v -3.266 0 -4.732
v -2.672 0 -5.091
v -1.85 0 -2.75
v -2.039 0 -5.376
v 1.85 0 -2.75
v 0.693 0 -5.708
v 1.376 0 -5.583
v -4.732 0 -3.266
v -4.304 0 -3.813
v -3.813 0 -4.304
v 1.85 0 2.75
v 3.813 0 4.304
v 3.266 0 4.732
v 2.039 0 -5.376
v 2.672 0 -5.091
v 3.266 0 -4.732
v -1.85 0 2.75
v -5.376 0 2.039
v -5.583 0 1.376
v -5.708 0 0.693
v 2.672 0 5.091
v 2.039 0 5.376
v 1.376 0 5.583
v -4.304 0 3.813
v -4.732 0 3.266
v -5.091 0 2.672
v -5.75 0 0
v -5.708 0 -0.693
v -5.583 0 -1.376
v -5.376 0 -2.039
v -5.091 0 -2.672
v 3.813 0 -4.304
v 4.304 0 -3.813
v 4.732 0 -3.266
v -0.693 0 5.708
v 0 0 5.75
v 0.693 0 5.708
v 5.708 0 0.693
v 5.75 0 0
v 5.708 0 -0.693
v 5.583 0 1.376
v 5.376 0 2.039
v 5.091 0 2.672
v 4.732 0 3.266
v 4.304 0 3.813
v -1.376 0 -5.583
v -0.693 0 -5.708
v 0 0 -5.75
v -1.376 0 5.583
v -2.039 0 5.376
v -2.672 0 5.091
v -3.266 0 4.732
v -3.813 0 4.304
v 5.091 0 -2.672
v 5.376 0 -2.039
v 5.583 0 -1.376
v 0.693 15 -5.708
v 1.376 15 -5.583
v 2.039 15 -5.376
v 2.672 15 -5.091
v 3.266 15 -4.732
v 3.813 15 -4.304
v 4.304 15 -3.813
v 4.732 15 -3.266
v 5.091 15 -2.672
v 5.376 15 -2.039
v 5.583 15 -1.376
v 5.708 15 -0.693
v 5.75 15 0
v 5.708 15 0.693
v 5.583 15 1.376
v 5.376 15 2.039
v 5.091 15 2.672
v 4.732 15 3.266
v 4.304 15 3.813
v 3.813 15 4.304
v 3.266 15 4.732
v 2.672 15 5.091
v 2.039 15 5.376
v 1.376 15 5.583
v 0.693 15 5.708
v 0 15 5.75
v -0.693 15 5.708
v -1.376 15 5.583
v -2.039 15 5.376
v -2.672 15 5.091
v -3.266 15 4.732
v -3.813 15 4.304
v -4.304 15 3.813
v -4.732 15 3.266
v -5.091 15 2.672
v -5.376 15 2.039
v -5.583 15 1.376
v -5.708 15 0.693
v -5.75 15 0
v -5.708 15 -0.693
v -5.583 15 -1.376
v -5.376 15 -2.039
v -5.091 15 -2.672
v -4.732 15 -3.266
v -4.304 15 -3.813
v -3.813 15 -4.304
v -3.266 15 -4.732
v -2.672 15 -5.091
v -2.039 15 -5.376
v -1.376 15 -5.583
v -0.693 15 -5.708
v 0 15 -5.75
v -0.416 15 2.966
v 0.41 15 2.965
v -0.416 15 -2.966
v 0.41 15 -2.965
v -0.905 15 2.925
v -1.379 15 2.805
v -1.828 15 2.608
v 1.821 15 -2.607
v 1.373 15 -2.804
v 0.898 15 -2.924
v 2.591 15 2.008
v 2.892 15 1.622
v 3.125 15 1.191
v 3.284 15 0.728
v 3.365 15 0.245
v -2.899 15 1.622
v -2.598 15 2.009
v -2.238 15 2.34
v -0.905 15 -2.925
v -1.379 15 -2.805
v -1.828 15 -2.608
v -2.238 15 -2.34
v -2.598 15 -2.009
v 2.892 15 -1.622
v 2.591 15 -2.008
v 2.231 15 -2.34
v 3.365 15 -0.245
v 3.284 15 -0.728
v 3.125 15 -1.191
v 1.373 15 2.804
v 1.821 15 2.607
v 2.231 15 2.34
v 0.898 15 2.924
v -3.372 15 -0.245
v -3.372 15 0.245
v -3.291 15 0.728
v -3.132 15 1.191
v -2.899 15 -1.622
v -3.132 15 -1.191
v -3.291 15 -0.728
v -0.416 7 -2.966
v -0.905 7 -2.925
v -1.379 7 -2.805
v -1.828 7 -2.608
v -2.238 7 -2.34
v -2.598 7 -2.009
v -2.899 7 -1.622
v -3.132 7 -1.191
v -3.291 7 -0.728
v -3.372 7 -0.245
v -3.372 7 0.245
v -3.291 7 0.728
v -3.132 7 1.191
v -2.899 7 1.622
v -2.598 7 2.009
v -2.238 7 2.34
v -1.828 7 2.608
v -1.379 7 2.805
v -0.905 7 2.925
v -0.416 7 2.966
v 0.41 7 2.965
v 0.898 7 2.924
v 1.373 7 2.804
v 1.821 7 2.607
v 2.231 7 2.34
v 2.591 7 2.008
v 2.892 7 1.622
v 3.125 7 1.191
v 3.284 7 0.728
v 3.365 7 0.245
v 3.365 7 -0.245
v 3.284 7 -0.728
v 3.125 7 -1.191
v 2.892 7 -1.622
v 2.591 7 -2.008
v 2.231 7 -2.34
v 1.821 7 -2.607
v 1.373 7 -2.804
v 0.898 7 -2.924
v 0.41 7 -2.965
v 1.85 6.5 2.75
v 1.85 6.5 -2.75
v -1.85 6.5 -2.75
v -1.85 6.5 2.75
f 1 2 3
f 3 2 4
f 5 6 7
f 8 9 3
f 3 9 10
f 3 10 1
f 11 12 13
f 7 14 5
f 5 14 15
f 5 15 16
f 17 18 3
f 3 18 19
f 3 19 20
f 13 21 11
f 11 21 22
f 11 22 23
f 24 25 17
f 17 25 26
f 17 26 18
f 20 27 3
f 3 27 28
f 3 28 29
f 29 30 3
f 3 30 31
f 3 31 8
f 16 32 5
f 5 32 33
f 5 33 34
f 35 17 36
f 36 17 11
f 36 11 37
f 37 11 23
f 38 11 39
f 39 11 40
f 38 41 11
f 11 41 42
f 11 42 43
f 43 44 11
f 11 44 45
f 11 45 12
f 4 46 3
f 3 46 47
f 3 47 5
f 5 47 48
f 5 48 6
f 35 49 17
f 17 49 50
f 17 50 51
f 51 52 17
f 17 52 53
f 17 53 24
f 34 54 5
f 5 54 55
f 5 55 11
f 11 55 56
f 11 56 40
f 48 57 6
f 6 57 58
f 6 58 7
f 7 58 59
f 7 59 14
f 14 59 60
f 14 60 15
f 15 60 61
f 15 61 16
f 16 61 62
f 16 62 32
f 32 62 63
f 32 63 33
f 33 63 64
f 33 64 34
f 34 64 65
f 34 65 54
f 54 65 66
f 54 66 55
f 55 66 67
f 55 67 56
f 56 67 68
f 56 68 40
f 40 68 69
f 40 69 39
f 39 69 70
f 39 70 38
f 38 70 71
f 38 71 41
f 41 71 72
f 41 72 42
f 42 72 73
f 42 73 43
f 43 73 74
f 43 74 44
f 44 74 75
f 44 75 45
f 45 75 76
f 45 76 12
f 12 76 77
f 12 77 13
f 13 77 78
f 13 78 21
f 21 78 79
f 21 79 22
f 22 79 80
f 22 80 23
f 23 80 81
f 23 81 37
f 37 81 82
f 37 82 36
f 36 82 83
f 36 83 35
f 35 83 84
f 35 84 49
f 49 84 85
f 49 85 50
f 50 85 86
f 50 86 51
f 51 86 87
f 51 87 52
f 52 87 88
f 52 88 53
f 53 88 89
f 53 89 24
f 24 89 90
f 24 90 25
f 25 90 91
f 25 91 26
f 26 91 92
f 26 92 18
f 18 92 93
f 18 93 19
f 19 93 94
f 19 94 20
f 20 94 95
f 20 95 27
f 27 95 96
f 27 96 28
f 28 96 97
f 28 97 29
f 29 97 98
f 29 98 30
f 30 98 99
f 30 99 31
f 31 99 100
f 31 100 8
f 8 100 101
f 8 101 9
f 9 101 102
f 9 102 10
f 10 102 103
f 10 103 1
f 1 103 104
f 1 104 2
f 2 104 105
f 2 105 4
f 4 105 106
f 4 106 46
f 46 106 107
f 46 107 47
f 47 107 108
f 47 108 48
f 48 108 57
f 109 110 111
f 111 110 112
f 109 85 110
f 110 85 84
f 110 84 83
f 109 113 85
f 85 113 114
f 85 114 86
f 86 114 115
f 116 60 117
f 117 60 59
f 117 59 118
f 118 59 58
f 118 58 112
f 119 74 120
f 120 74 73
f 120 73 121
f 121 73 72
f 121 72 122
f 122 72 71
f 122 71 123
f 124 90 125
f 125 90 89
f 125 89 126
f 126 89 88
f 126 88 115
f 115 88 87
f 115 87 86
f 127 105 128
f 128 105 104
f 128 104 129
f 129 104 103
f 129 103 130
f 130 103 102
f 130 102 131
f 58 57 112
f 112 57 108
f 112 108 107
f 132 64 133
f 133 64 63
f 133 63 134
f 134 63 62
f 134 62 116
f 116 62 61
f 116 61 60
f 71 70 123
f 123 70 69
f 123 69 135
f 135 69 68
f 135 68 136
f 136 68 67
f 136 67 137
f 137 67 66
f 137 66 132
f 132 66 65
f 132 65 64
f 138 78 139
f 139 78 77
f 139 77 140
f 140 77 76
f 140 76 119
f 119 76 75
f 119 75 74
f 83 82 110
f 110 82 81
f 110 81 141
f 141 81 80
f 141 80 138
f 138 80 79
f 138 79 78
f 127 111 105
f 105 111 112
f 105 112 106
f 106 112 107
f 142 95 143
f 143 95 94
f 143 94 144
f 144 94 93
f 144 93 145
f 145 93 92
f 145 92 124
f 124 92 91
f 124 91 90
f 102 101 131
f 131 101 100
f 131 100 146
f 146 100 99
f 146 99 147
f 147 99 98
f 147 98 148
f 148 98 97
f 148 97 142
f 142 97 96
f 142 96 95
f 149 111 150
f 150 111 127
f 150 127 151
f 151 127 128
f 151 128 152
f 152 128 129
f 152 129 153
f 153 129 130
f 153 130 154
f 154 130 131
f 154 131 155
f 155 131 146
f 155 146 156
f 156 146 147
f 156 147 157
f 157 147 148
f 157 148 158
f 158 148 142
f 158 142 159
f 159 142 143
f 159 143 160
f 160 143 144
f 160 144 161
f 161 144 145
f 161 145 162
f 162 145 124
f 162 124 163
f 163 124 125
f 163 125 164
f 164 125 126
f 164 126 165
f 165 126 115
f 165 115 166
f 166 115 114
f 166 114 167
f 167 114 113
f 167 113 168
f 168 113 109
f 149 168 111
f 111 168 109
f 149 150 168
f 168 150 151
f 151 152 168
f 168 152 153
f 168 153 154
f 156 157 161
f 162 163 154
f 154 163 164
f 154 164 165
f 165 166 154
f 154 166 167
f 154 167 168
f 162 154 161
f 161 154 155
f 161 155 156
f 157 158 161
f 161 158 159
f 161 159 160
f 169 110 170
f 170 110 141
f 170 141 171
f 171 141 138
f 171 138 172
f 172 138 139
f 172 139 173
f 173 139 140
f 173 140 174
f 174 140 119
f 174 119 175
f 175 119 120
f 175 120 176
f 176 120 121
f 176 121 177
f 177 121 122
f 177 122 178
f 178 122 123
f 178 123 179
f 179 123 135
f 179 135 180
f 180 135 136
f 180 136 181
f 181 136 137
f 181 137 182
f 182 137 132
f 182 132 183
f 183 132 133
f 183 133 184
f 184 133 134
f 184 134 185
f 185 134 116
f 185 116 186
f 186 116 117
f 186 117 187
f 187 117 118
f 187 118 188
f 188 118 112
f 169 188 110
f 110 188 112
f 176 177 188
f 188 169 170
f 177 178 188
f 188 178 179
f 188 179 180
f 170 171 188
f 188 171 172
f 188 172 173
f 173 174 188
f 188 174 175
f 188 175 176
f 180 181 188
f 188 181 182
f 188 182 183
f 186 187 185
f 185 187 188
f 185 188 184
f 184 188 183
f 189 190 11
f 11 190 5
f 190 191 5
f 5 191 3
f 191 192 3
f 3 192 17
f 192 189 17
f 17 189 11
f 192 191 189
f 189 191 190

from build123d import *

# Parameters (mm, degrees)
SKETCH1_R           = 5.75
BOSS_EXTRUDE1_DEPTH = 15
CUT_EXTRUDE3_DEPTH  = 8
SKETCH7_W           = 3.7
SKETCH7_H           = 5.5
CUT_EXTRUDE4_DEPTH  = 6.5


with BuildPart() as part:
    # Sketch1 → Boss-Extrude1 (new body)
    with BuildSketch(Plane(origin=(0, 0, 0), x_dir=(1, 0, 0), z_dir=(0, 1, 0))):
        with Locations(Location((0, 0, 0), (0, 0, 270))):
            Circle(SKETCH1_R)
    extrude(amount=BOSS_EXTRUDE1_DEPTH)

    # Sketch6 → Cut-Extrude3 (cut)
    with BuildSketch(Plane(origin=(0, 15, 0), x_dir=(1, 0, 0), z_dir=(0, 1, 0))):
        with BuildLine():
            Line((0.41, 2.964671599), (0.41, -2.964671599))
            ThreePointArc((0.41, -2.964671599), (3.374671599, 0), (0.41, 2.964671599))
        make_face()
        with BuildLine():
            Line((-0.416408681, 2.965564682), (-0.416408681, -2.965564682))
            ThreePointArc((-0.416408681, -2.965564682), (-3.381973363, 0), (-0.416408681, 2.965564682))
        make_face()
    extrude(amount=-CUT_EXTRUDE3_DEPTH, mode=Mode.SUBTRACT)

    # Sketch7 → Cut-Extrude4 (cut)
    with BuildSketch(Plane(origin=(0, 0, 0), x_dir=(1, 0, 0), z_dir=(0, 1, 0))):
        Rectangle(SKETCH7_W, SKETCH7_H)
    extrude(amount=CUT_EXTRUDE4_DEPTH, mode=Mode.SUBTRACT)


solid = part.part
